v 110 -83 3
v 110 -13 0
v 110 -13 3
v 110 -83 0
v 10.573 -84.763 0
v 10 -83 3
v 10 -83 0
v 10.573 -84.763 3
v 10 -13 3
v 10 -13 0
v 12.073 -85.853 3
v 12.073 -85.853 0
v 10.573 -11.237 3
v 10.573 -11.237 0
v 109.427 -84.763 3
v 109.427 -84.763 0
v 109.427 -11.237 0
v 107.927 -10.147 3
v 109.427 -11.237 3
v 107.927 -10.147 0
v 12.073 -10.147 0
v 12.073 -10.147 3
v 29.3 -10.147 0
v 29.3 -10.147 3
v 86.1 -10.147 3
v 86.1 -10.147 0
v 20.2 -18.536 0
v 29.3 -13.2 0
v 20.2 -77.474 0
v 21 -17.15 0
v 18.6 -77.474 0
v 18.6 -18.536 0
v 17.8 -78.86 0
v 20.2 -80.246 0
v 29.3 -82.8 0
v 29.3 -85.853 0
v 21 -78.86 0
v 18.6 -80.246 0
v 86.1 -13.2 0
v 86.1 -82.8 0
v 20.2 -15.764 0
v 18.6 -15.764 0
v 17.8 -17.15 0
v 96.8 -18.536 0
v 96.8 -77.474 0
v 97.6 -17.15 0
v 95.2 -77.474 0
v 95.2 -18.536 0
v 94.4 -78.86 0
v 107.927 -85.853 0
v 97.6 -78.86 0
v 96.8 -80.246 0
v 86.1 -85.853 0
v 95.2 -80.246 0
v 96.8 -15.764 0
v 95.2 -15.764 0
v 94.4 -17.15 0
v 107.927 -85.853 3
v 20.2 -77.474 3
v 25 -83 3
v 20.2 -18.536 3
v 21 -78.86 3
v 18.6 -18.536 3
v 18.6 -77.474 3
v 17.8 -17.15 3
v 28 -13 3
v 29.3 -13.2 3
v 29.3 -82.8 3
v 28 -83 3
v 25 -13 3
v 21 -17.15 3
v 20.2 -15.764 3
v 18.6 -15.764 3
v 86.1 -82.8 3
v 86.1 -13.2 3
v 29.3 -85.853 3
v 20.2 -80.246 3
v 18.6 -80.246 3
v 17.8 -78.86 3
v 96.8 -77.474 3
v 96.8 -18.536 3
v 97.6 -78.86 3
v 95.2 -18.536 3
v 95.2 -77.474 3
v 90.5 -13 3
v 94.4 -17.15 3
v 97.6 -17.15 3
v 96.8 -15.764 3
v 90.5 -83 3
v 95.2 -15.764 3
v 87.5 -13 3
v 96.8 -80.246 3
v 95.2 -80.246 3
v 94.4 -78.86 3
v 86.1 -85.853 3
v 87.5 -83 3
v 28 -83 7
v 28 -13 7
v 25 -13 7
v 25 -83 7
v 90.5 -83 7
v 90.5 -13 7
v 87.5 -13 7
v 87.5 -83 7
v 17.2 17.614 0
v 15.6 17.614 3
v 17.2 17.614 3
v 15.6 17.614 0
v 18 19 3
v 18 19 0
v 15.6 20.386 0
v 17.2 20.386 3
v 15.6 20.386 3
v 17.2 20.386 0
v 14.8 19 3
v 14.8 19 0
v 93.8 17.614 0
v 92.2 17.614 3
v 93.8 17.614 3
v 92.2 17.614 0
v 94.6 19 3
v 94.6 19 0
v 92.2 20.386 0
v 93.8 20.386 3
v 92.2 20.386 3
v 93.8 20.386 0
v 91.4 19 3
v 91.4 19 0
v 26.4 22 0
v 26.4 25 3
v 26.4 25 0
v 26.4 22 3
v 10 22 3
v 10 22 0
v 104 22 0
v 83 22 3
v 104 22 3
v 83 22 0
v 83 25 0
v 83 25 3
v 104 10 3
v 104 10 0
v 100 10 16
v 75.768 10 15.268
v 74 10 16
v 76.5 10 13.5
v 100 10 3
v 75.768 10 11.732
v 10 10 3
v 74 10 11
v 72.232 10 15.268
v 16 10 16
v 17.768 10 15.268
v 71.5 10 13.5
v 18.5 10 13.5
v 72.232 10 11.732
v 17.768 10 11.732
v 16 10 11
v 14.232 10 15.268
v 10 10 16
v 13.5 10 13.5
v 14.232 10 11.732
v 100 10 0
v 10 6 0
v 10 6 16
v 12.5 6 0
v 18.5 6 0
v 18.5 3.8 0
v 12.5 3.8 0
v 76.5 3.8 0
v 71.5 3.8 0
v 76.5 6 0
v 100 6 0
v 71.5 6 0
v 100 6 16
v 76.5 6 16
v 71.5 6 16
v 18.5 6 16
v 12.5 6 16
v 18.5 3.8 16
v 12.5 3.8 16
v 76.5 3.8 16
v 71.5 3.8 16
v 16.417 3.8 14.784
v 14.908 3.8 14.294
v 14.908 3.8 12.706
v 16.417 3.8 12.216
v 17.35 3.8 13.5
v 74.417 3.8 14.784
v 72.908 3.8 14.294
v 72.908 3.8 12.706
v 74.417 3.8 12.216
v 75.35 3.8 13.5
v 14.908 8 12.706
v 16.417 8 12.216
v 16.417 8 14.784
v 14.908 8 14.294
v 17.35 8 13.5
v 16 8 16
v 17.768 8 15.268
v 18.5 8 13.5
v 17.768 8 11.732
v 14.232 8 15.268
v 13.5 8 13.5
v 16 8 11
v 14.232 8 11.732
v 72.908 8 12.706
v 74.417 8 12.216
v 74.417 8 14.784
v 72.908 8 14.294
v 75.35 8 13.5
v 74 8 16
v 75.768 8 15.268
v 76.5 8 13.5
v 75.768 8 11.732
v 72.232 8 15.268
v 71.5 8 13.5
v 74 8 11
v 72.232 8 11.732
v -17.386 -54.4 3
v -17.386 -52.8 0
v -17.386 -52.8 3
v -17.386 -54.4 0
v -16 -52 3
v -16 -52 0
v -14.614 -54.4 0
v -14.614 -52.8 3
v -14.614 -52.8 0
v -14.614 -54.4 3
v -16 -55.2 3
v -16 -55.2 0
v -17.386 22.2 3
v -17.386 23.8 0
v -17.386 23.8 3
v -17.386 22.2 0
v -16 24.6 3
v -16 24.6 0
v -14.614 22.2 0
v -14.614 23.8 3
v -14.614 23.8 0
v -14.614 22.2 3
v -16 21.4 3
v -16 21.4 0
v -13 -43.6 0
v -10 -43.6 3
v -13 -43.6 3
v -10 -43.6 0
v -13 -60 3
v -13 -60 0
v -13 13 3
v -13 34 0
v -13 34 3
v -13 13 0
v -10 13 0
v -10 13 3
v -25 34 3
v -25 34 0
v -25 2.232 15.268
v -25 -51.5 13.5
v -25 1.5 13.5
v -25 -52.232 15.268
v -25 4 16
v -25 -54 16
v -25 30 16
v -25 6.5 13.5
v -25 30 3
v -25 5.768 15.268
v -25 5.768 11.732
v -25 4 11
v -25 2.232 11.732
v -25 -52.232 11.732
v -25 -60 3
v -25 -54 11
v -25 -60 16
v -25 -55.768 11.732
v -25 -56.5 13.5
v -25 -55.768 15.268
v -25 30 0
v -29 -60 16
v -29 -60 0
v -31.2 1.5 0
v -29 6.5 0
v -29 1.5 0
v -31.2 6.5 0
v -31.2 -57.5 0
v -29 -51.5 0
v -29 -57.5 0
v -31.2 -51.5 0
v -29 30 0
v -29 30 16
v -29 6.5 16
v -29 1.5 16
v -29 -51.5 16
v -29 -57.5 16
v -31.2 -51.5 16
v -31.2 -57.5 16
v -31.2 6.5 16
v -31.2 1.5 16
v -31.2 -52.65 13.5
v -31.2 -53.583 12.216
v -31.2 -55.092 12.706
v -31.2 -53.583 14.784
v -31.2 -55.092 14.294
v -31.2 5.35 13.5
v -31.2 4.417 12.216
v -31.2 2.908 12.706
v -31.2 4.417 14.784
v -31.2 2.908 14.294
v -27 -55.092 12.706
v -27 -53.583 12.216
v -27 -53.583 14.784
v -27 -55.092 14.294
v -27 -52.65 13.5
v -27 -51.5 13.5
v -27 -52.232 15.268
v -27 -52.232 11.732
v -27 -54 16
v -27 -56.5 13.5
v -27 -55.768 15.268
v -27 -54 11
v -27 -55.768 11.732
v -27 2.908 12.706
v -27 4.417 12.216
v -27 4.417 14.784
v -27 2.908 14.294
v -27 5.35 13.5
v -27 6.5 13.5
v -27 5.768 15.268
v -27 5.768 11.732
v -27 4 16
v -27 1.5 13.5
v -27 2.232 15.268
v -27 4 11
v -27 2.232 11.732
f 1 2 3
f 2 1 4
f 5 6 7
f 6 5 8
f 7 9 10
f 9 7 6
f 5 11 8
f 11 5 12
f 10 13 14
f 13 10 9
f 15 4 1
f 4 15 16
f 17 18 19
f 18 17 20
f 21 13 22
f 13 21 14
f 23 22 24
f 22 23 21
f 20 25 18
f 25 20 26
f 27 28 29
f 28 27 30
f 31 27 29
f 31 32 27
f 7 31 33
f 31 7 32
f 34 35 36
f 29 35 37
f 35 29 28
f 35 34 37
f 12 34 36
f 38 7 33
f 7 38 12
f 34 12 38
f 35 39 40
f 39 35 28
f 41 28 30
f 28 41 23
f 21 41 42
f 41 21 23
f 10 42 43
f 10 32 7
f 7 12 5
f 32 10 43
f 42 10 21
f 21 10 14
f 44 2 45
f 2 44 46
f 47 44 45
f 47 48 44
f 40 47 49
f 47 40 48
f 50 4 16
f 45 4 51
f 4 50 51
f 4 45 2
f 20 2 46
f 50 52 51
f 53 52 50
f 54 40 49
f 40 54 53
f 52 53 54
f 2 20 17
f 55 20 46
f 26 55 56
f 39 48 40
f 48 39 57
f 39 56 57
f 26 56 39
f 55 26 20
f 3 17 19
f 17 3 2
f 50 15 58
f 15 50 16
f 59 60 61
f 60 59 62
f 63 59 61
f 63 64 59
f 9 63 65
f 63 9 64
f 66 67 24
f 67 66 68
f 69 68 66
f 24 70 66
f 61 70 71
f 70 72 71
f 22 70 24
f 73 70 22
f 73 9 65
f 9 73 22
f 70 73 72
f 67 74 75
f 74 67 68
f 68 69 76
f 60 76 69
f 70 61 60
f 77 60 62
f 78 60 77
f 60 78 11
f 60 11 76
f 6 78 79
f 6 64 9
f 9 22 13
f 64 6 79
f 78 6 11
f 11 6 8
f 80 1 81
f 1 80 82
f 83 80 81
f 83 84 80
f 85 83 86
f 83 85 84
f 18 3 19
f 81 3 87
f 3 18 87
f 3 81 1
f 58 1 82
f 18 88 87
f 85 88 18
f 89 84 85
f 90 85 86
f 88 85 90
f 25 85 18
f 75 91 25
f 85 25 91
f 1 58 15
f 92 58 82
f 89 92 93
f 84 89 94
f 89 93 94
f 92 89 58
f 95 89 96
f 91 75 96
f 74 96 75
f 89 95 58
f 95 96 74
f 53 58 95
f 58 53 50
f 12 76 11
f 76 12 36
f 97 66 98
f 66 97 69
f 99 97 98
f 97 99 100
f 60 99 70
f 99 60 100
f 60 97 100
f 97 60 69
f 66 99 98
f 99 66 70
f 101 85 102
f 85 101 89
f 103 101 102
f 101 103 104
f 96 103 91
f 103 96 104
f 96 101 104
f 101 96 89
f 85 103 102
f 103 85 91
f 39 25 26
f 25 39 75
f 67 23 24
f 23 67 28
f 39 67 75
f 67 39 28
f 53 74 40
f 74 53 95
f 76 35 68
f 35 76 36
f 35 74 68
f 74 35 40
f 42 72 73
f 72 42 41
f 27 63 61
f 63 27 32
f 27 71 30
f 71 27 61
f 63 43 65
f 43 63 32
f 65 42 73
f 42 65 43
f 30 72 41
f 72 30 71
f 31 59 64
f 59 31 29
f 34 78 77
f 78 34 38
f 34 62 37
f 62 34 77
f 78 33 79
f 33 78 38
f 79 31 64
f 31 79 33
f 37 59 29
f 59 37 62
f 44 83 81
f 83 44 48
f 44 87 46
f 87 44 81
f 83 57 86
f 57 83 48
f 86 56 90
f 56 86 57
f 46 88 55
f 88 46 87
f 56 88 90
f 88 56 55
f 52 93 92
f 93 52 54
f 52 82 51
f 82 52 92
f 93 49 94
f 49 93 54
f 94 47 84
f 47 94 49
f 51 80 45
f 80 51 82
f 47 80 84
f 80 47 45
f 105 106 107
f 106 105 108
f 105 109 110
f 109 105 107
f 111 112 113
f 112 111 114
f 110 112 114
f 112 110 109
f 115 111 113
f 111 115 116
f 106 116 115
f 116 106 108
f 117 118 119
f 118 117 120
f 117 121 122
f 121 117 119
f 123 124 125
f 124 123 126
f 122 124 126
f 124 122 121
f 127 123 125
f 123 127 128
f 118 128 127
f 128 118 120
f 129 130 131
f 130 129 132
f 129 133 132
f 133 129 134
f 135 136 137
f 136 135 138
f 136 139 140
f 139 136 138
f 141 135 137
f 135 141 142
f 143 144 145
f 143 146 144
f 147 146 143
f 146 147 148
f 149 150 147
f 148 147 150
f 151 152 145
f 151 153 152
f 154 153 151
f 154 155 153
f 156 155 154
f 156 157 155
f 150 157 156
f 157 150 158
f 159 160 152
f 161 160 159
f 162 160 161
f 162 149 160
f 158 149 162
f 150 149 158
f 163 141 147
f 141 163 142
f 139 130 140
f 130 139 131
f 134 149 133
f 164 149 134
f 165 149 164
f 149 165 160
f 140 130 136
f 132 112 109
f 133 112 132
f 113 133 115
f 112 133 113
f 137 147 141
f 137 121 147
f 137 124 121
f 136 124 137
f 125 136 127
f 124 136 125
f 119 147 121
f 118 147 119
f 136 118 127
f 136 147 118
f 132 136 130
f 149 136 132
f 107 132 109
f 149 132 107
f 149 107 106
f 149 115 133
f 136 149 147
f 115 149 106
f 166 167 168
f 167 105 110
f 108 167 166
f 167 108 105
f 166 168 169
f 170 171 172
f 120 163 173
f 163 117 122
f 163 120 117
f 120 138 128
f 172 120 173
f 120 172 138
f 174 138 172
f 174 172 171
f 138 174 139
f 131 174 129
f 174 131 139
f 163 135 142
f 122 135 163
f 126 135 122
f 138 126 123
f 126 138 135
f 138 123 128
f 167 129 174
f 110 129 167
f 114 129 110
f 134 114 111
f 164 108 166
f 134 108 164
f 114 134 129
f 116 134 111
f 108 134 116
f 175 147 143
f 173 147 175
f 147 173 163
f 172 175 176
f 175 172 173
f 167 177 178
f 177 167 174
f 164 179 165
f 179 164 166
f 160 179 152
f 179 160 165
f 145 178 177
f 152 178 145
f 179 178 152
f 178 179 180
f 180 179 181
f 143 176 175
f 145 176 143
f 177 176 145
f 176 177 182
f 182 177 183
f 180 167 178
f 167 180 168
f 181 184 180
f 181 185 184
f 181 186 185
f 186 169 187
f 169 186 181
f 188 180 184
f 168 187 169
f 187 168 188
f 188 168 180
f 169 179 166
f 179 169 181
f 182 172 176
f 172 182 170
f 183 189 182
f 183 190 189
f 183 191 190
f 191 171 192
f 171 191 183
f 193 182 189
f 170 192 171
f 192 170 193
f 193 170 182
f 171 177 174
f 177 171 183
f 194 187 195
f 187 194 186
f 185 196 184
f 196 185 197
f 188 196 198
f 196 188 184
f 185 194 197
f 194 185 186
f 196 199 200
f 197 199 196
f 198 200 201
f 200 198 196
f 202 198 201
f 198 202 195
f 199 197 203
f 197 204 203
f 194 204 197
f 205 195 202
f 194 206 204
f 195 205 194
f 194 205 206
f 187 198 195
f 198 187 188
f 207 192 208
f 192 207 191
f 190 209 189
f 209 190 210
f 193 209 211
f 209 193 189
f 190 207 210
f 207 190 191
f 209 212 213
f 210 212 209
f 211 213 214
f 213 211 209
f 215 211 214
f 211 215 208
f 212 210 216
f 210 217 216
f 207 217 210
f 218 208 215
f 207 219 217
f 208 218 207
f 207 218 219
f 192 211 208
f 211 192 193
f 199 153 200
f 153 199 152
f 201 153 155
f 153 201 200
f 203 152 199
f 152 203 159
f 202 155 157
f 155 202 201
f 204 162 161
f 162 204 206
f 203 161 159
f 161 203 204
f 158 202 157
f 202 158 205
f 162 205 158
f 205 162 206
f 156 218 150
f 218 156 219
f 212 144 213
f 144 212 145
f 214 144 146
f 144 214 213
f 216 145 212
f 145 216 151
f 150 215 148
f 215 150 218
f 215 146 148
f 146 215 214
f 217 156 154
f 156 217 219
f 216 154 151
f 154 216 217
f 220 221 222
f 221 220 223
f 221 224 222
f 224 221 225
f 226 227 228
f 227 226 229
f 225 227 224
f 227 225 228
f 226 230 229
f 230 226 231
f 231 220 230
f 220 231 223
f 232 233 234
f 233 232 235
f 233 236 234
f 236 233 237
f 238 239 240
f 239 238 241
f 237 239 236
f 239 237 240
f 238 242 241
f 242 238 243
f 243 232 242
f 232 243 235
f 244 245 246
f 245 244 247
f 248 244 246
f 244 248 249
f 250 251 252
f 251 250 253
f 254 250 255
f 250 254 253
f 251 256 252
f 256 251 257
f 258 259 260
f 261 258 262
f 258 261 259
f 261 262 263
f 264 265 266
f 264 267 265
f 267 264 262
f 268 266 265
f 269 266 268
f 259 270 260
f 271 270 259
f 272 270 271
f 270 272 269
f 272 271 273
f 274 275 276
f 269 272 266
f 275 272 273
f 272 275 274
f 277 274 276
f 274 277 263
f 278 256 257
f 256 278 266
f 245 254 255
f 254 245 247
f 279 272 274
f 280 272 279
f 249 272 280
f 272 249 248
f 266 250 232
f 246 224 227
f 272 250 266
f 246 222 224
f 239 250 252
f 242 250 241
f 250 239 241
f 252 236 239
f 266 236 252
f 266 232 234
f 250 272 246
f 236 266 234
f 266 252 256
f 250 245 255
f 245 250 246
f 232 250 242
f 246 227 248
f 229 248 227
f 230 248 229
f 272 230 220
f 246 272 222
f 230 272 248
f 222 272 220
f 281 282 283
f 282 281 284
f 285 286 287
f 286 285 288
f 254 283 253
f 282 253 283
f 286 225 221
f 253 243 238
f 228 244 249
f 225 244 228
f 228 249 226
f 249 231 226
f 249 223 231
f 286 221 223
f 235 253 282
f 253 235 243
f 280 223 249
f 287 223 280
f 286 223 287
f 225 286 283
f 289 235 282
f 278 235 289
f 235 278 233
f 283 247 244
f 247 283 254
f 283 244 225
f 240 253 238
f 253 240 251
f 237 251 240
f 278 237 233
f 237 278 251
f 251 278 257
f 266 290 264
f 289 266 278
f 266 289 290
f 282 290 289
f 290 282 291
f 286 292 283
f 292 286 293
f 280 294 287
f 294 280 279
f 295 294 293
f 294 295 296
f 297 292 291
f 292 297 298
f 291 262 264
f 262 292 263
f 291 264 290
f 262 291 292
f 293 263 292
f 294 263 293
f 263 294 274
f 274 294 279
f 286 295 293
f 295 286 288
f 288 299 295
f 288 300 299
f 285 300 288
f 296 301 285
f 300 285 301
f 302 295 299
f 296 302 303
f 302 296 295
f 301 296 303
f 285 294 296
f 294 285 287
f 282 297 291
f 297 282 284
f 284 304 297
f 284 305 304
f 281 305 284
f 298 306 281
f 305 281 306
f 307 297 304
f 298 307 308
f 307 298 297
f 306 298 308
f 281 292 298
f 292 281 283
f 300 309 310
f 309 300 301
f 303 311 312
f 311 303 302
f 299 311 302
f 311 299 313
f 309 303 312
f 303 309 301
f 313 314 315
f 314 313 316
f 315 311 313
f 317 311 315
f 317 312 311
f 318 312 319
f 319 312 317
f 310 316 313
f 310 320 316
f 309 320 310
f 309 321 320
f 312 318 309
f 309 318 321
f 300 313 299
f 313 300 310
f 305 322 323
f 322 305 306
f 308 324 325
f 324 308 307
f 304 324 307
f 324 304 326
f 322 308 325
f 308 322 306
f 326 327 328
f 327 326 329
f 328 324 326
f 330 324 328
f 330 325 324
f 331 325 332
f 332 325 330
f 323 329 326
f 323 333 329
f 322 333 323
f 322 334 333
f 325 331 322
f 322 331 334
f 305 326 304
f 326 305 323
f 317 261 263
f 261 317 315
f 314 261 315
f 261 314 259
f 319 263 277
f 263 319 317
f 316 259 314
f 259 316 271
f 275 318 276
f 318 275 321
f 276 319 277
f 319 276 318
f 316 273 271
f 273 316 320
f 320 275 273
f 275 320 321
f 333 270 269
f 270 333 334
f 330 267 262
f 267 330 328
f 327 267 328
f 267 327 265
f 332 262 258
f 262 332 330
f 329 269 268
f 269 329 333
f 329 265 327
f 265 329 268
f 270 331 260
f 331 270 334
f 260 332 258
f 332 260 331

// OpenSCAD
/*
 * Title:   Raspberry Pi 4B
 * Author:  David Tillemans
 * Version: 0.1
 * Date:    06 May 2020
 * License: CC BY-SA 4.0
 *
 * Explanation
 * Dimensions of raspberry pi is:
 * Total Width = 88 (USB and ethernet stick out)
 * Total Breath = 58.3 (USB-C, HDMIs and AV stick out)
 * Details found on: https://www.raspberrypi.org/documentation/hardware/raspberrypi/mechanical/rpi_MECH_4b_4p0.pdf
 * 
 * raspberrypi4b(withpcb, withsdcard) : draws a raspberry Pi 4B 
 *     with withpcb = 0 : no pcb is drawn on the location of the components
 *     with withpcb = 1 : pcb is drawn with the components
 *     with withsdcard = 0 : no sdcard is drawn
 *     with withsdcard = 1 : the sdcard is drawn
 *            
 */

module bottom_plate() {
    difference() {
        translate([3, 3, 0]) {
            minkowski() {
                cube([100 - 6, 76 - 6, 2.2]); // Thickness 3
                cylinder(r = 3, 0.8);        
            }
            translate([12,0,-4]) cube([3, 76 - 6, 4]);
            translate([76,0,-4]) cube([3, 76 - 6, 4]);
        }
        union() {
            side_supports();
            translate([9.4,7.15,-1]) cylinder(d=3.2, 5);
            translate([9.4,68.86,-1]) cylinder(d=3.2, 5);
            translate([86,7.15,-1]) cylinder(d=3.2, 5);
            translate([86,68.86,-1]) cylinder(d=3.2, 5);
        }
    }
}

module side_supports() {
    translate([3, 0, 0]) {
        side_support();
    }
    
    translate([3, 73, 0]) {
        side_support();
    }
}

module side_support() {
    difference() {
        cube([94, 3, 15]);
        union() {
            translate([6.4,-1,6]) rotate([-90,0,0]) cylinder(d=3.2, 5);
            translate([83,-1,6]) rotate([-90,0,0]) cylinder(d=3.2, 5);
            translate([0,-1,0]) cube([16.4, 5, 3]);
            translate([73,-1,0]) cube([21, 5, 3]);
        }
    }    
}

module pi_support_left() {   
    difference() {
        union() {
            cube([90, 16, 4]);
            translate([2.5,0,4]) cube([6,16,2.2]);
            translate([61.5,0,4]) cube([5,16,2.2]);
        } 
        union() {
            translate([6,13.5,-1]) cylinder(d=2.7, 8);
            translate([64,13.5,-1]) cylinder(d=2.7, 8);
            translate([6,13.5,-1]) cylinder(d=5, 3);
            translate([64,13.5,-1]) cylinder(d=5, 3);
        }
    }
}

module support_left() {
    side_support();
    translate([0,0,15]) pi_support_left();
}

module support_right() {
    mirror([0,1,0]) support_left();
}

module complete_case() {
    translate([3,76,0]) support_right();
    translate([3,0,0]) support_left();
    bottom_plate();
}

module build_topology() {
    translate([10,-10,3]) rotate([180,0,0]) bottom_plate();
    translate([10,25,0])  rotate([90,0,0]) support_left();
    translate([-10,-60,0])  rotate([-90,0,90]) support_right();
    
}

// side_support();
// bottom_plate();
// side_supports();
// translate([9.4,7.15,-1]) cylinder(d=3.2, 5);

// translate([3,76,0]) support_right();
// translate([3,0,0]) support_left();
// complete_case();
build_topology();
